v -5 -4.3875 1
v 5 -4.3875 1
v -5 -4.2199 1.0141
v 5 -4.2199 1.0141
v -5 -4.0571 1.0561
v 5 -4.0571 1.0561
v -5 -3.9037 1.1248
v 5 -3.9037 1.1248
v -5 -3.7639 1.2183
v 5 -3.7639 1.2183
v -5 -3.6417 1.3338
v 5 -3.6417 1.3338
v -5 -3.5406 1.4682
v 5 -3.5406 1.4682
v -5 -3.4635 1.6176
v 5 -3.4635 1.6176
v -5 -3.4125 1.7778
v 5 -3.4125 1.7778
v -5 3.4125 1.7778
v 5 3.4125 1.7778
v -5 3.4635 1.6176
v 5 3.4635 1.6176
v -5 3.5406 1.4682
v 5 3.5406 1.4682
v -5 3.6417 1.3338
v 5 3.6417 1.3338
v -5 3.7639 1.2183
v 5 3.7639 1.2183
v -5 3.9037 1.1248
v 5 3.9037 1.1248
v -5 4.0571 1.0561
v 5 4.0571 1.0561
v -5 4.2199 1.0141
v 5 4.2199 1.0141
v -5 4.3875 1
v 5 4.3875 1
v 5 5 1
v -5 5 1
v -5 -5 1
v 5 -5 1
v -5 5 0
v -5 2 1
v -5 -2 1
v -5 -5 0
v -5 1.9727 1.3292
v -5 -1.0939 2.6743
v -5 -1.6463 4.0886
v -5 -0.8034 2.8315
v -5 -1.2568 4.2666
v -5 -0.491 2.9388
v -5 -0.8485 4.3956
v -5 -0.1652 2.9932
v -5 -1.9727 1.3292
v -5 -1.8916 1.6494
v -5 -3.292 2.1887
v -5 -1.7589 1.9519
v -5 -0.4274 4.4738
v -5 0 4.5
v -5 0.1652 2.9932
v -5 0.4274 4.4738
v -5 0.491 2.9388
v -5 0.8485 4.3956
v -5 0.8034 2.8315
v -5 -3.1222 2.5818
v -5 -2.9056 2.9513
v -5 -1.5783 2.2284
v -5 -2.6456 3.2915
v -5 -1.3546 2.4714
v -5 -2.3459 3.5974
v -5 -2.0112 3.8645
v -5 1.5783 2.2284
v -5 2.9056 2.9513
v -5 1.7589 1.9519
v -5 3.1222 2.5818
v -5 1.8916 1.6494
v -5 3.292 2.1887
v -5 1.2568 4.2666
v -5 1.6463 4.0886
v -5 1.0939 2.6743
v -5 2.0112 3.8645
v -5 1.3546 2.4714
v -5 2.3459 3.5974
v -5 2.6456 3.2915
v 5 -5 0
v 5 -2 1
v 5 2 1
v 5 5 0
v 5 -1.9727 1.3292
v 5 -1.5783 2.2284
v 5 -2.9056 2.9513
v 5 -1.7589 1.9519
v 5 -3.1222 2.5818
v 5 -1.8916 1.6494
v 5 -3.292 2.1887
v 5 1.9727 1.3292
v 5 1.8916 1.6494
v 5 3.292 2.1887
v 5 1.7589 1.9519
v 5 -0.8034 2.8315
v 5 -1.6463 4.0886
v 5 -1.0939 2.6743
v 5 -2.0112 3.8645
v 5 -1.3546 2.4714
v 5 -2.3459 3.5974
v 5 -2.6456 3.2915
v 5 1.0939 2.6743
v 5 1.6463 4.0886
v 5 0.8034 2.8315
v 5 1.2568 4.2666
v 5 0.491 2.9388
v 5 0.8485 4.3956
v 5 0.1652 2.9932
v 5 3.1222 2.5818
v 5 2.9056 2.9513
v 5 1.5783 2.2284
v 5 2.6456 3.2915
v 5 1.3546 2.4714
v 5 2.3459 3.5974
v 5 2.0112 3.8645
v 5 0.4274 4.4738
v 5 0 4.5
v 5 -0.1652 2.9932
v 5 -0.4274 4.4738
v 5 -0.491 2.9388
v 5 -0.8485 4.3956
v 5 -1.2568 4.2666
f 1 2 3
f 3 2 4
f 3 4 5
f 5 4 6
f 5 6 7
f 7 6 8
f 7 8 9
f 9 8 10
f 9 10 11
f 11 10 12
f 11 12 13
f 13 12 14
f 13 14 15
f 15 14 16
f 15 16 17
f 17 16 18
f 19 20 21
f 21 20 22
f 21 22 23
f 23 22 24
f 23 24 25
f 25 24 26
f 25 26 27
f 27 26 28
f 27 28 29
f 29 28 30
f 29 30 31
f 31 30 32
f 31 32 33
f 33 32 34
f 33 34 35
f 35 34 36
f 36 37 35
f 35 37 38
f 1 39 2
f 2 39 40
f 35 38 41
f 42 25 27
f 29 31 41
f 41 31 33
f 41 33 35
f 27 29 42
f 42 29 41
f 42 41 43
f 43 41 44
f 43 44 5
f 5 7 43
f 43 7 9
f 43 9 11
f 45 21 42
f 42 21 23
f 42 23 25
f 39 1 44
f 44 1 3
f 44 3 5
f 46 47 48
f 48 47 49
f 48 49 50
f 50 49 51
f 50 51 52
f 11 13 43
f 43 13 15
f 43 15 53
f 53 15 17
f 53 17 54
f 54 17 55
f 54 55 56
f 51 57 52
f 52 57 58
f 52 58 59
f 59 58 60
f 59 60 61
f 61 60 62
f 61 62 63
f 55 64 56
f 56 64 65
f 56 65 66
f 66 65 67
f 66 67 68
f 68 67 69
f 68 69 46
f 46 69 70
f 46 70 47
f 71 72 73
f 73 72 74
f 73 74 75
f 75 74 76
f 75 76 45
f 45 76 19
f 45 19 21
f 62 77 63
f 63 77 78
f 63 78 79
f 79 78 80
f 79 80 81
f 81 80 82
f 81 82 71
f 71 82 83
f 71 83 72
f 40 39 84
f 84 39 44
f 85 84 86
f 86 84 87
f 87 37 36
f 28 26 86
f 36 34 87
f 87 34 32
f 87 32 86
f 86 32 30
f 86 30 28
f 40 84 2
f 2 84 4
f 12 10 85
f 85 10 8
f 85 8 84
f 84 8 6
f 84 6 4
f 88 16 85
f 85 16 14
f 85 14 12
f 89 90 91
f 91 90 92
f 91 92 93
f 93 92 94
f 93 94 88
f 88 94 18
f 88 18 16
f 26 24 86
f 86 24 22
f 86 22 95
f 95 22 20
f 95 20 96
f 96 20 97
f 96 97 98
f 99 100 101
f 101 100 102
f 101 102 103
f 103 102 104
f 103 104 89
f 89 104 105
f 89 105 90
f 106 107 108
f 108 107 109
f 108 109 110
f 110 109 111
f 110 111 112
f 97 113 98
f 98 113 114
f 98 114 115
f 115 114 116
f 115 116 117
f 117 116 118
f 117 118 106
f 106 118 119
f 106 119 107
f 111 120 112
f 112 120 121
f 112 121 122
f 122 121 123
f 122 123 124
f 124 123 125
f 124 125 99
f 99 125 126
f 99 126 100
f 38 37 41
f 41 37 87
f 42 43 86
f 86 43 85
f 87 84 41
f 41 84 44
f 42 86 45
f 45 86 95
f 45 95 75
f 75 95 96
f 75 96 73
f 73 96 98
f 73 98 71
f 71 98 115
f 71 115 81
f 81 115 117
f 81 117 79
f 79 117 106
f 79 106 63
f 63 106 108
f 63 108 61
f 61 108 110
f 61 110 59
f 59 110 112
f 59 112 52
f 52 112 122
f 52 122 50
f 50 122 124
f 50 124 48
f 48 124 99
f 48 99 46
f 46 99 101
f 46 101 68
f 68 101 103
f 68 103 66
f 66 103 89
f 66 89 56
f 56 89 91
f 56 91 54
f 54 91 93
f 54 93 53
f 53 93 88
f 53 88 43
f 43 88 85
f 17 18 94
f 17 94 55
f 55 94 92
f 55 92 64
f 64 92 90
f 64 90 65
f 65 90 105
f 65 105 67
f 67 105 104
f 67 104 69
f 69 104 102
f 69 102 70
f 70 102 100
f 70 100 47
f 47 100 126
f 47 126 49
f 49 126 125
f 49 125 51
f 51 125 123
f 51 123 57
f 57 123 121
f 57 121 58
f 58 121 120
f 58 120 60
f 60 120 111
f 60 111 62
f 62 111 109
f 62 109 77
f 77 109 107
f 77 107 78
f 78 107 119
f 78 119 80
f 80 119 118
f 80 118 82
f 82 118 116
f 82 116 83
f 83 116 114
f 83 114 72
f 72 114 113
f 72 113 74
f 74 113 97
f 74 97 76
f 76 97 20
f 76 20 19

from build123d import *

# Parameters (mm, degrees)
CROQUIS1_W              = 10
CROQUIS1_H              = 10
SALIENTE_EXTRUIR1_DEPTH = 1
SALIENTE_EXTRUIR2_START = 5
SALIENTE_EXTRUIR2_DEPTH = 10
REDONDEO2_R             = 1
REDONDEO3_R             = 1


with BuildPart() as part:
    # Croquis1 → Saliente-Extruir1 (new body)
    with BuildSketch(Plane.XY):
        Rectangle(CROQUIS1_W, CROQUIS1_H)
    extrude(amount=SALIENTE_EXTRUIR1_DEPTH)

    # Croquis2 → Saliente-Extruir2 (add, through all)
    with BuildSketch(Plane(origin=(0, 0, 0), x_dir=(0, 0, -1), z_dir=(1, 0, 0)).offset(SALIENTE_EXTRUIR2_START)):
        with BuildLine():
            Line((-1, 3.5), (-1, 2))
            ThreePointArc((-1, 2), (-3, 0), (-1, -2))
            Line((-1, -2), (-1, -3.5))
            ThreePointArc((-1, -3.5), (-4.5, 0), (-1, 3.5))
        make_face()
    extrude(amount=-SALIENTE_EXTRUIR2_DEPTH)

    # Redondeo2
    redondeo2_edges = [part.edges().sort_by_distance(p)[0] for p in [
        (0, 3.5, 1),
    ]]
    fillet(redondeo2_edges, radius=REDONDEO2_R)

    # Redondeo3
    redondeo3_edges = [part.edges().sort_by_distance(p)[0] for p in [
        (0, -3.5, 1),
    ]]
    fillet(redondeo3_edges, radius=REDONDEO3_R)


solid = part.part
